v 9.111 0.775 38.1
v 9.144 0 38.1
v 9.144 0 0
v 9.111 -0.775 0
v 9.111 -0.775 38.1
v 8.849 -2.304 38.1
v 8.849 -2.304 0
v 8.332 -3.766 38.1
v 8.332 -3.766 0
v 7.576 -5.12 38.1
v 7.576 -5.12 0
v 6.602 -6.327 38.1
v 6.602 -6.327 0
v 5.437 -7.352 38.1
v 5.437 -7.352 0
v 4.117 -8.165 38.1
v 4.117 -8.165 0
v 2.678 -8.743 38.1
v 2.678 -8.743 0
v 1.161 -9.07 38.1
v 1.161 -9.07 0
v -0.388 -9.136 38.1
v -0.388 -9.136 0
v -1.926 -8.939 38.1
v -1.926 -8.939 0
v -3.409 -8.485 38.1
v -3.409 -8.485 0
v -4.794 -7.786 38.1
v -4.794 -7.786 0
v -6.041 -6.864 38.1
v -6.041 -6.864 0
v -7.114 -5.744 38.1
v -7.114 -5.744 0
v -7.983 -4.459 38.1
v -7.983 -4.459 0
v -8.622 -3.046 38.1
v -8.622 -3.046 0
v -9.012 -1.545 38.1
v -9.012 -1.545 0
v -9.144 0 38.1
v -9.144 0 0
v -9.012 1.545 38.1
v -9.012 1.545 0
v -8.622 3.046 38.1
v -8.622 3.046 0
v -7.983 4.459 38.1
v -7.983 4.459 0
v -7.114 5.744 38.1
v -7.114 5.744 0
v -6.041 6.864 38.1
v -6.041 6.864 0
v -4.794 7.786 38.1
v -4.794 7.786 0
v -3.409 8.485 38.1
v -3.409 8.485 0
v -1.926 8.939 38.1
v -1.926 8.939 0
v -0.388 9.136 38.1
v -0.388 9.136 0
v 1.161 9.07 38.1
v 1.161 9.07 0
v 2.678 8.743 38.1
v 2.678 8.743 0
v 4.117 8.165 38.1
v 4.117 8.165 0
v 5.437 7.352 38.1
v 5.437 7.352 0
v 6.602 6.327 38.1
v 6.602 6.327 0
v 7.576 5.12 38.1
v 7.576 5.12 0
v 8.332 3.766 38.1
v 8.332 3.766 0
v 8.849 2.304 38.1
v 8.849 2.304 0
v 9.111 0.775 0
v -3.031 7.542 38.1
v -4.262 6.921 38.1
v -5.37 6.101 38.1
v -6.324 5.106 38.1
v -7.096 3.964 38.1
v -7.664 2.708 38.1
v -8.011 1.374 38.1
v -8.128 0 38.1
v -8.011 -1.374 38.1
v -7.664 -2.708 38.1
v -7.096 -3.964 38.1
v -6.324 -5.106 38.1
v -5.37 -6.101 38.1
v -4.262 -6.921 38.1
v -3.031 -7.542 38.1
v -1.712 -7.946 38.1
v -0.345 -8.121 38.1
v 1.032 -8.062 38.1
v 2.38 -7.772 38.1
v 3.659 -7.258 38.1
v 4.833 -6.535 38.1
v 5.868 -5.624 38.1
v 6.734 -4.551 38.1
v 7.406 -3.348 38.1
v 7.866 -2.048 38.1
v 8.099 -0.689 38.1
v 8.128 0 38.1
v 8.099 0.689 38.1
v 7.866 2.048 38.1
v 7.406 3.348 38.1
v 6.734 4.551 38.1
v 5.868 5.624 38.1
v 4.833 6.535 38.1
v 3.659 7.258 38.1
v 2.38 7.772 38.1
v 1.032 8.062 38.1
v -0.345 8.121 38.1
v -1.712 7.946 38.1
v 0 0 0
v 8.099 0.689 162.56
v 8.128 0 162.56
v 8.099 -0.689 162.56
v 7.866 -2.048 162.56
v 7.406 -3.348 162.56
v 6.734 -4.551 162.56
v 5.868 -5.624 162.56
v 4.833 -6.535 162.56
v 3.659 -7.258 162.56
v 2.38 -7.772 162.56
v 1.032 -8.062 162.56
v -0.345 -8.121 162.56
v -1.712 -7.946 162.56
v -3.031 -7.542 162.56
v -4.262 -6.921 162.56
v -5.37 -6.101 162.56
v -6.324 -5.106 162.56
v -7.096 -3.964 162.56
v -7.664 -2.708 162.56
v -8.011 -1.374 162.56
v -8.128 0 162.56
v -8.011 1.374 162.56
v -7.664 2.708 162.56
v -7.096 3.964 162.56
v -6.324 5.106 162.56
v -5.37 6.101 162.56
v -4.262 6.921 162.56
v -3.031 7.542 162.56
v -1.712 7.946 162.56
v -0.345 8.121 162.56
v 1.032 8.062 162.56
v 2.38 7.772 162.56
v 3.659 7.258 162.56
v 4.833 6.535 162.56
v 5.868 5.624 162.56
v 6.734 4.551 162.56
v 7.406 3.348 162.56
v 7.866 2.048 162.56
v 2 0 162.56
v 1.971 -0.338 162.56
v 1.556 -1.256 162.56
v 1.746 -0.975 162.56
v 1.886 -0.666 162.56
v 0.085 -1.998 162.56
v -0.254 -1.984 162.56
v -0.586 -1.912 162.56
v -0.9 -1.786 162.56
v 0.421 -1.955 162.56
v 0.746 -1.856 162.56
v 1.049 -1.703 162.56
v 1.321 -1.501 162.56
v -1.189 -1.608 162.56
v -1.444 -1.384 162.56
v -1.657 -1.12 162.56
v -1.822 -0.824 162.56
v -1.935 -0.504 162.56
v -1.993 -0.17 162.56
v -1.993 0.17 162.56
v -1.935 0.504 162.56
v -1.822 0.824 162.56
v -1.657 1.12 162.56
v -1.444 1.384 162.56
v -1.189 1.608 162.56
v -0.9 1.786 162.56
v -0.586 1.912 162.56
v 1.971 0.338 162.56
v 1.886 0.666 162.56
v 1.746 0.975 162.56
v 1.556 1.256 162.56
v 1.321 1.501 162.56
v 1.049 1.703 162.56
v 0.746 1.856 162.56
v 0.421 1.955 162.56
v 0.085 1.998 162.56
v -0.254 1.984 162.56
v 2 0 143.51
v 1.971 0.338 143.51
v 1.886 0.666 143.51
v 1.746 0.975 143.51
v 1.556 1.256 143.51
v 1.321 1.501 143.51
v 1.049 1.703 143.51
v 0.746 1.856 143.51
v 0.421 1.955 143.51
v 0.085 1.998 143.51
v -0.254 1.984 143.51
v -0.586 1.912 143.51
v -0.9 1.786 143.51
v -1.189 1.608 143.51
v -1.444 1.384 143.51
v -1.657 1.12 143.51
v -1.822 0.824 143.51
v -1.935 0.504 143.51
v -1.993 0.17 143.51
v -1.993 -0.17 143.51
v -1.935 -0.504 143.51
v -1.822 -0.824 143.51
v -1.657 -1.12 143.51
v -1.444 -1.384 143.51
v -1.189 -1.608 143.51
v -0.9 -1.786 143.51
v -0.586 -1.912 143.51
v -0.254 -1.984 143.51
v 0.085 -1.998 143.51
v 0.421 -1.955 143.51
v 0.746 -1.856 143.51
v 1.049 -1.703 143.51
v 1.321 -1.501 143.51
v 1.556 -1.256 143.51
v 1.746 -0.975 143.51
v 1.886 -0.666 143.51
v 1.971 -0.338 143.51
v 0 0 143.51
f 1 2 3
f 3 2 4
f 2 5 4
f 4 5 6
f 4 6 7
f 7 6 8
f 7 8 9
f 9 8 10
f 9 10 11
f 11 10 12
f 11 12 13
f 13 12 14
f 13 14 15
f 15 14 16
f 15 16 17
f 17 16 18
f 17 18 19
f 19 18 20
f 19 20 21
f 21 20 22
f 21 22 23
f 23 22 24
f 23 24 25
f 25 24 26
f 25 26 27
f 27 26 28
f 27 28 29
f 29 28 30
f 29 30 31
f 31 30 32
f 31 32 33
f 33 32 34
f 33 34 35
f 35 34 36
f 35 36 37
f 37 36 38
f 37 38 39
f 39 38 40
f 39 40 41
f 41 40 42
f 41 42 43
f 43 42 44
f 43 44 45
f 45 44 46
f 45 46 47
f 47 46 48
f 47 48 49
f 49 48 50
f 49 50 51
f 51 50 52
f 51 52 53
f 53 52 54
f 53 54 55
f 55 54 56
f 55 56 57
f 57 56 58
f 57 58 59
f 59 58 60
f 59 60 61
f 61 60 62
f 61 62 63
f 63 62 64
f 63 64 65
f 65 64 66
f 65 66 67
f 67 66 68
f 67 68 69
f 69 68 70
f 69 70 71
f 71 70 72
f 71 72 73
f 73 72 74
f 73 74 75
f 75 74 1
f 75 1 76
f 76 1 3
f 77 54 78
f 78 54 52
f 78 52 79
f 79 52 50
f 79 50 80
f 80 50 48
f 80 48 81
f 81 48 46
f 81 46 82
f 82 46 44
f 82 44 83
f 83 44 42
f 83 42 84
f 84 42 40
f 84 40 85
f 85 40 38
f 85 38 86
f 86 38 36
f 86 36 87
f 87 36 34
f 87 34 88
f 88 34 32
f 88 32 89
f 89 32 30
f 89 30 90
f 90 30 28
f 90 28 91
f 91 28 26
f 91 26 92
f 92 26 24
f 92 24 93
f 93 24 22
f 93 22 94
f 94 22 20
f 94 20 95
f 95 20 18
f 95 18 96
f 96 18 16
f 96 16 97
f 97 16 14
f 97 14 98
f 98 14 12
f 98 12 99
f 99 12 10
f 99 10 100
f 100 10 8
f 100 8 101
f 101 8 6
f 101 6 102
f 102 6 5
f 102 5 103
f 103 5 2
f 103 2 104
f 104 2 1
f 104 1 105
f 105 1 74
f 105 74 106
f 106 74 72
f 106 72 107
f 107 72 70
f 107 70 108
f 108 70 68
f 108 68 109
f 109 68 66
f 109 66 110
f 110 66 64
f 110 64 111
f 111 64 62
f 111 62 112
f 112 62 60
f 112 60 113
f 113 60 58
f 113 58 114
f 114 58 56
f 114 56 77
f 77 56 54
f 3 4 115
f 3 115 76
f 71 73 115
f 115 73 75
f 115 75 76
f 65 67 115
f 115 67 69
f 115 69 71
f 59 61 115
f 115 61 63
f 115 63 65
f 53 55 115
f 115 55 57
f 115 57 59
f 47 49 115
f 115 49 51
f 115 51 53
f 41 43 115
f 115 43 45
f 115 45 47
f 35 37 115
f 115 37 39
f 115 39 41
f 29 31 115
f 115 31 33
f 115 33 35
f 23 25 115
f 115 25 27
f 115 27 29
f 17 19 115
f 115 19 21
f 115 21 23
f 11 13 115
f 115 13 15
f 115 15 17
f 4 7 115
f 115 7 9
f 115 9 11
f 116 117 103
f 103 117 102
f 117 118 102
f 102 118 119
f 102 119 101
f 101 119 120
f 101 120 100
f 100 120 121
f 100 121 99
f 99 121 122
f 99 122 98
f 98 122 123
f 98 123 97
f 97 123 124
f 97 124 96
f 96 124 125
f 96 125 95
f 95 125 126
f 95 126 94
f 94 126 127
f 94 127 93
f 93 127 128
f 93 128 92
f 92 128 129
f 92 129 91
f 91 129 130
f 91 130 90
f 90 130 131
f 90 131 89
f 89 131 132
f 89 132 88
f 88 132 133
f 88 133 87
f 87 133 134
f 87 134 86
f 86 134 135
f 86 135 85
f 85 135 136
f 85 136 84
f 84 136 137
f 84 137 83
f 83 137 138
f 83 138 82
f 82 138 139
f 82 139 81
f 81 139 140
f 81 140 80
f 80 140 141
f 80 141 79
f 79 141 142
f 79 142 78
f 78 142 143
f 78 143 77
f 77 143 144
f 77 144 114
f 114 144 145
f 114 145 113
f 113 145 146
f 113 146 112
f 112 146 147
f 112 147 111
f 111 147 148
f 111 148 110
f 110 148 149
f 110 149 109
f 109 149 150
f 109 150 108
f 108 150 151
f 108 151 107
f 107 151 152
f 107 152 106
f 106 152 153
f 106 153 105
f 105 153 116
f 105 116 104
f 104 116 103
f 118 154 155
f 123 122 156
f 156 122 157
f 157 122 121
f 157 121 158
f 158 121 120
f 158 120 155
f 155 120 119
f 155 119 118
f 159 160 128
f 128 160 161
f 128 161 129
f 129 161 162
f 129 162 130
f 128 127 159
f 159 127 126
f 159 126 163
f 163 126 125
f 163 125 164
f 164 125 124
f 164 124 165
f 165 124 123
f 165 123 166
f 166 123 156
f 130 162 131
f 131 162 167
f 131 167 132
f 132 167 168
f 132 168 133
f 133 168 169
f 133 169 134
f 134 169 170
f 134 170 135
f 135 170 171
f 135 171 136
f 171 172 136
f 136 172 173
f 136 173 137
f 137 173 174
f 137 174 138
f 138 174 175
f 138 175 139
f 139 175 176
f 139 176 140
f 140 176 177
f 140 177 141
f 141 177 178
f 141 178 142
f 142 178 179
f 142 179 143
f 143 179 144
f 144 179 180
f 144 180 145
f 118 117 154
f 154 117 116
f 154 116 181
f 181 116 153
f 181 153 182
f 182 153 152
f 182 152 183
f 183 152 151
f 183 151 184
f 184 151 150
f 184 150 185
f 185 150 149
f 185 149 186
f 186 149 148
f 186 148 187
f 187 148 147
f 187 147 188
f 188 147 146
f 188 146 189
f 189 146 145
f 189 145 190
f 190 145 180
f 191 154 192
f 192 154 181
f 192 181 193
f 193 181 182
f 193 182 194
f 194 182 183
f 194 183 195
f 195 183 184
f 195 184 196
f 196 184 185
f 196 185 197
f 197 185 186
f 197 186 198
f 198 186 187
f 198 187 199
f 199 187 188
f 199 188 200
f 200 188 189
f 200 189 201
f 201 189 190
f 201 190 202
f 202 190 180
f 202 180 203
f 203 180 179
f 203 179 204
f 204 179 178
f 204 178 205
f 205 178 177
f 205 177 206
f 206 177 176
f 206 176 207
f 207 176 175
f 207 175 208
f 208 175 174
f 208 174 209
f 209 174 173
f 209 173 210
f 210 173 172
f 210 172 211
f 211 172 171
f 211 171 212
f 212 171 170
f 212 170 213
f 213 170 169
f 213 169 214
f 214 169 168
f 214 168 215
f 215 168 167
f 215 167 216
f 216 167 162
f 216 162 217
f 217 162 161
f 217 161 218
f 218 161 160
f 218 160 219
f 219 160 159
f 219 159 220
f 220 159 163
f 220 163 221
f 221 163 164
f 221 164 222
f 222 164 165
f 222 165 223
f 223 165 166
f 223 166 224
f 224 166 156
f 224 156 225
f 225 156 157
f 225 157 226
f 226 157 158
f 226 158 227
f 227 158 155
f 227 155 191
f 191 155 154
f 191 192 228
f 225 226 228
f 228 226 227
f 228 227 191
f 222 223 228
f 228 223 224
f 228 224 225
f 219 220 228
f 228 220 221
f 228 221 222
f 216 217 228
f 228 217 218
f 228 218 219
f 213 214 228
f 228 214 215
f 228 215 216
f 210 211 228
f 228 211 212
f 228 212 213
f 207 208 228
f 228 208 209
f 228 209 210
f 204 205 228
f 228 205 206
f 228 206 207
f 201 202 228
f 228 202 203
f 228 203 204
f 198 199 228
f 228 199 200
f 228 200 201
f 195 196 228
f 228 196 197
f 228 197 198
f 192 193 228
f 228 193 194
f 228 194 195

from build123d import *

# Parameters (mm, degrees)
SKETCH2_R             = 9.144
THICKER_SECTION_DEPTH = 38.1
SKETCH3_R             = 8.128
SMALLER_SECTION_DEPTH = 124.46
SKETCH4_R             = 2
CUT_EXTRUDE1_DEPTH    = 19.05


with BuildPart() as part:
    # Sketch2 → Thicker Section (new body)
    with BuildSketch(Plane.XY):
        with Locations(Location((0, 0, 0), (0, 0, 180))):
            Circle(SKETCH2_R)
    extrude(amount=THICKER_SECTION_DEPTH)

    # Sketch3 → Smaller  Section (add)
    with BuildSketch(Plane.XY.offset(38.1)):
        with Locations(Location((0, 0, 0), (0, 0, 180))):
            Circle(SKETCH3_R)
    extrude(amount=SMALLER_SECTION_DEPTH)

    # Sketch4 → Cut-Extrude1 (cut)
    with BuildSketch(Plane.XY.offset(162.56)):
        Circle(SKETCH4_R)
    extrude(amount=-CUT_EXTRUDE1_DEPTH, mode=Mode.SUBTRACT)


solid = part.part
